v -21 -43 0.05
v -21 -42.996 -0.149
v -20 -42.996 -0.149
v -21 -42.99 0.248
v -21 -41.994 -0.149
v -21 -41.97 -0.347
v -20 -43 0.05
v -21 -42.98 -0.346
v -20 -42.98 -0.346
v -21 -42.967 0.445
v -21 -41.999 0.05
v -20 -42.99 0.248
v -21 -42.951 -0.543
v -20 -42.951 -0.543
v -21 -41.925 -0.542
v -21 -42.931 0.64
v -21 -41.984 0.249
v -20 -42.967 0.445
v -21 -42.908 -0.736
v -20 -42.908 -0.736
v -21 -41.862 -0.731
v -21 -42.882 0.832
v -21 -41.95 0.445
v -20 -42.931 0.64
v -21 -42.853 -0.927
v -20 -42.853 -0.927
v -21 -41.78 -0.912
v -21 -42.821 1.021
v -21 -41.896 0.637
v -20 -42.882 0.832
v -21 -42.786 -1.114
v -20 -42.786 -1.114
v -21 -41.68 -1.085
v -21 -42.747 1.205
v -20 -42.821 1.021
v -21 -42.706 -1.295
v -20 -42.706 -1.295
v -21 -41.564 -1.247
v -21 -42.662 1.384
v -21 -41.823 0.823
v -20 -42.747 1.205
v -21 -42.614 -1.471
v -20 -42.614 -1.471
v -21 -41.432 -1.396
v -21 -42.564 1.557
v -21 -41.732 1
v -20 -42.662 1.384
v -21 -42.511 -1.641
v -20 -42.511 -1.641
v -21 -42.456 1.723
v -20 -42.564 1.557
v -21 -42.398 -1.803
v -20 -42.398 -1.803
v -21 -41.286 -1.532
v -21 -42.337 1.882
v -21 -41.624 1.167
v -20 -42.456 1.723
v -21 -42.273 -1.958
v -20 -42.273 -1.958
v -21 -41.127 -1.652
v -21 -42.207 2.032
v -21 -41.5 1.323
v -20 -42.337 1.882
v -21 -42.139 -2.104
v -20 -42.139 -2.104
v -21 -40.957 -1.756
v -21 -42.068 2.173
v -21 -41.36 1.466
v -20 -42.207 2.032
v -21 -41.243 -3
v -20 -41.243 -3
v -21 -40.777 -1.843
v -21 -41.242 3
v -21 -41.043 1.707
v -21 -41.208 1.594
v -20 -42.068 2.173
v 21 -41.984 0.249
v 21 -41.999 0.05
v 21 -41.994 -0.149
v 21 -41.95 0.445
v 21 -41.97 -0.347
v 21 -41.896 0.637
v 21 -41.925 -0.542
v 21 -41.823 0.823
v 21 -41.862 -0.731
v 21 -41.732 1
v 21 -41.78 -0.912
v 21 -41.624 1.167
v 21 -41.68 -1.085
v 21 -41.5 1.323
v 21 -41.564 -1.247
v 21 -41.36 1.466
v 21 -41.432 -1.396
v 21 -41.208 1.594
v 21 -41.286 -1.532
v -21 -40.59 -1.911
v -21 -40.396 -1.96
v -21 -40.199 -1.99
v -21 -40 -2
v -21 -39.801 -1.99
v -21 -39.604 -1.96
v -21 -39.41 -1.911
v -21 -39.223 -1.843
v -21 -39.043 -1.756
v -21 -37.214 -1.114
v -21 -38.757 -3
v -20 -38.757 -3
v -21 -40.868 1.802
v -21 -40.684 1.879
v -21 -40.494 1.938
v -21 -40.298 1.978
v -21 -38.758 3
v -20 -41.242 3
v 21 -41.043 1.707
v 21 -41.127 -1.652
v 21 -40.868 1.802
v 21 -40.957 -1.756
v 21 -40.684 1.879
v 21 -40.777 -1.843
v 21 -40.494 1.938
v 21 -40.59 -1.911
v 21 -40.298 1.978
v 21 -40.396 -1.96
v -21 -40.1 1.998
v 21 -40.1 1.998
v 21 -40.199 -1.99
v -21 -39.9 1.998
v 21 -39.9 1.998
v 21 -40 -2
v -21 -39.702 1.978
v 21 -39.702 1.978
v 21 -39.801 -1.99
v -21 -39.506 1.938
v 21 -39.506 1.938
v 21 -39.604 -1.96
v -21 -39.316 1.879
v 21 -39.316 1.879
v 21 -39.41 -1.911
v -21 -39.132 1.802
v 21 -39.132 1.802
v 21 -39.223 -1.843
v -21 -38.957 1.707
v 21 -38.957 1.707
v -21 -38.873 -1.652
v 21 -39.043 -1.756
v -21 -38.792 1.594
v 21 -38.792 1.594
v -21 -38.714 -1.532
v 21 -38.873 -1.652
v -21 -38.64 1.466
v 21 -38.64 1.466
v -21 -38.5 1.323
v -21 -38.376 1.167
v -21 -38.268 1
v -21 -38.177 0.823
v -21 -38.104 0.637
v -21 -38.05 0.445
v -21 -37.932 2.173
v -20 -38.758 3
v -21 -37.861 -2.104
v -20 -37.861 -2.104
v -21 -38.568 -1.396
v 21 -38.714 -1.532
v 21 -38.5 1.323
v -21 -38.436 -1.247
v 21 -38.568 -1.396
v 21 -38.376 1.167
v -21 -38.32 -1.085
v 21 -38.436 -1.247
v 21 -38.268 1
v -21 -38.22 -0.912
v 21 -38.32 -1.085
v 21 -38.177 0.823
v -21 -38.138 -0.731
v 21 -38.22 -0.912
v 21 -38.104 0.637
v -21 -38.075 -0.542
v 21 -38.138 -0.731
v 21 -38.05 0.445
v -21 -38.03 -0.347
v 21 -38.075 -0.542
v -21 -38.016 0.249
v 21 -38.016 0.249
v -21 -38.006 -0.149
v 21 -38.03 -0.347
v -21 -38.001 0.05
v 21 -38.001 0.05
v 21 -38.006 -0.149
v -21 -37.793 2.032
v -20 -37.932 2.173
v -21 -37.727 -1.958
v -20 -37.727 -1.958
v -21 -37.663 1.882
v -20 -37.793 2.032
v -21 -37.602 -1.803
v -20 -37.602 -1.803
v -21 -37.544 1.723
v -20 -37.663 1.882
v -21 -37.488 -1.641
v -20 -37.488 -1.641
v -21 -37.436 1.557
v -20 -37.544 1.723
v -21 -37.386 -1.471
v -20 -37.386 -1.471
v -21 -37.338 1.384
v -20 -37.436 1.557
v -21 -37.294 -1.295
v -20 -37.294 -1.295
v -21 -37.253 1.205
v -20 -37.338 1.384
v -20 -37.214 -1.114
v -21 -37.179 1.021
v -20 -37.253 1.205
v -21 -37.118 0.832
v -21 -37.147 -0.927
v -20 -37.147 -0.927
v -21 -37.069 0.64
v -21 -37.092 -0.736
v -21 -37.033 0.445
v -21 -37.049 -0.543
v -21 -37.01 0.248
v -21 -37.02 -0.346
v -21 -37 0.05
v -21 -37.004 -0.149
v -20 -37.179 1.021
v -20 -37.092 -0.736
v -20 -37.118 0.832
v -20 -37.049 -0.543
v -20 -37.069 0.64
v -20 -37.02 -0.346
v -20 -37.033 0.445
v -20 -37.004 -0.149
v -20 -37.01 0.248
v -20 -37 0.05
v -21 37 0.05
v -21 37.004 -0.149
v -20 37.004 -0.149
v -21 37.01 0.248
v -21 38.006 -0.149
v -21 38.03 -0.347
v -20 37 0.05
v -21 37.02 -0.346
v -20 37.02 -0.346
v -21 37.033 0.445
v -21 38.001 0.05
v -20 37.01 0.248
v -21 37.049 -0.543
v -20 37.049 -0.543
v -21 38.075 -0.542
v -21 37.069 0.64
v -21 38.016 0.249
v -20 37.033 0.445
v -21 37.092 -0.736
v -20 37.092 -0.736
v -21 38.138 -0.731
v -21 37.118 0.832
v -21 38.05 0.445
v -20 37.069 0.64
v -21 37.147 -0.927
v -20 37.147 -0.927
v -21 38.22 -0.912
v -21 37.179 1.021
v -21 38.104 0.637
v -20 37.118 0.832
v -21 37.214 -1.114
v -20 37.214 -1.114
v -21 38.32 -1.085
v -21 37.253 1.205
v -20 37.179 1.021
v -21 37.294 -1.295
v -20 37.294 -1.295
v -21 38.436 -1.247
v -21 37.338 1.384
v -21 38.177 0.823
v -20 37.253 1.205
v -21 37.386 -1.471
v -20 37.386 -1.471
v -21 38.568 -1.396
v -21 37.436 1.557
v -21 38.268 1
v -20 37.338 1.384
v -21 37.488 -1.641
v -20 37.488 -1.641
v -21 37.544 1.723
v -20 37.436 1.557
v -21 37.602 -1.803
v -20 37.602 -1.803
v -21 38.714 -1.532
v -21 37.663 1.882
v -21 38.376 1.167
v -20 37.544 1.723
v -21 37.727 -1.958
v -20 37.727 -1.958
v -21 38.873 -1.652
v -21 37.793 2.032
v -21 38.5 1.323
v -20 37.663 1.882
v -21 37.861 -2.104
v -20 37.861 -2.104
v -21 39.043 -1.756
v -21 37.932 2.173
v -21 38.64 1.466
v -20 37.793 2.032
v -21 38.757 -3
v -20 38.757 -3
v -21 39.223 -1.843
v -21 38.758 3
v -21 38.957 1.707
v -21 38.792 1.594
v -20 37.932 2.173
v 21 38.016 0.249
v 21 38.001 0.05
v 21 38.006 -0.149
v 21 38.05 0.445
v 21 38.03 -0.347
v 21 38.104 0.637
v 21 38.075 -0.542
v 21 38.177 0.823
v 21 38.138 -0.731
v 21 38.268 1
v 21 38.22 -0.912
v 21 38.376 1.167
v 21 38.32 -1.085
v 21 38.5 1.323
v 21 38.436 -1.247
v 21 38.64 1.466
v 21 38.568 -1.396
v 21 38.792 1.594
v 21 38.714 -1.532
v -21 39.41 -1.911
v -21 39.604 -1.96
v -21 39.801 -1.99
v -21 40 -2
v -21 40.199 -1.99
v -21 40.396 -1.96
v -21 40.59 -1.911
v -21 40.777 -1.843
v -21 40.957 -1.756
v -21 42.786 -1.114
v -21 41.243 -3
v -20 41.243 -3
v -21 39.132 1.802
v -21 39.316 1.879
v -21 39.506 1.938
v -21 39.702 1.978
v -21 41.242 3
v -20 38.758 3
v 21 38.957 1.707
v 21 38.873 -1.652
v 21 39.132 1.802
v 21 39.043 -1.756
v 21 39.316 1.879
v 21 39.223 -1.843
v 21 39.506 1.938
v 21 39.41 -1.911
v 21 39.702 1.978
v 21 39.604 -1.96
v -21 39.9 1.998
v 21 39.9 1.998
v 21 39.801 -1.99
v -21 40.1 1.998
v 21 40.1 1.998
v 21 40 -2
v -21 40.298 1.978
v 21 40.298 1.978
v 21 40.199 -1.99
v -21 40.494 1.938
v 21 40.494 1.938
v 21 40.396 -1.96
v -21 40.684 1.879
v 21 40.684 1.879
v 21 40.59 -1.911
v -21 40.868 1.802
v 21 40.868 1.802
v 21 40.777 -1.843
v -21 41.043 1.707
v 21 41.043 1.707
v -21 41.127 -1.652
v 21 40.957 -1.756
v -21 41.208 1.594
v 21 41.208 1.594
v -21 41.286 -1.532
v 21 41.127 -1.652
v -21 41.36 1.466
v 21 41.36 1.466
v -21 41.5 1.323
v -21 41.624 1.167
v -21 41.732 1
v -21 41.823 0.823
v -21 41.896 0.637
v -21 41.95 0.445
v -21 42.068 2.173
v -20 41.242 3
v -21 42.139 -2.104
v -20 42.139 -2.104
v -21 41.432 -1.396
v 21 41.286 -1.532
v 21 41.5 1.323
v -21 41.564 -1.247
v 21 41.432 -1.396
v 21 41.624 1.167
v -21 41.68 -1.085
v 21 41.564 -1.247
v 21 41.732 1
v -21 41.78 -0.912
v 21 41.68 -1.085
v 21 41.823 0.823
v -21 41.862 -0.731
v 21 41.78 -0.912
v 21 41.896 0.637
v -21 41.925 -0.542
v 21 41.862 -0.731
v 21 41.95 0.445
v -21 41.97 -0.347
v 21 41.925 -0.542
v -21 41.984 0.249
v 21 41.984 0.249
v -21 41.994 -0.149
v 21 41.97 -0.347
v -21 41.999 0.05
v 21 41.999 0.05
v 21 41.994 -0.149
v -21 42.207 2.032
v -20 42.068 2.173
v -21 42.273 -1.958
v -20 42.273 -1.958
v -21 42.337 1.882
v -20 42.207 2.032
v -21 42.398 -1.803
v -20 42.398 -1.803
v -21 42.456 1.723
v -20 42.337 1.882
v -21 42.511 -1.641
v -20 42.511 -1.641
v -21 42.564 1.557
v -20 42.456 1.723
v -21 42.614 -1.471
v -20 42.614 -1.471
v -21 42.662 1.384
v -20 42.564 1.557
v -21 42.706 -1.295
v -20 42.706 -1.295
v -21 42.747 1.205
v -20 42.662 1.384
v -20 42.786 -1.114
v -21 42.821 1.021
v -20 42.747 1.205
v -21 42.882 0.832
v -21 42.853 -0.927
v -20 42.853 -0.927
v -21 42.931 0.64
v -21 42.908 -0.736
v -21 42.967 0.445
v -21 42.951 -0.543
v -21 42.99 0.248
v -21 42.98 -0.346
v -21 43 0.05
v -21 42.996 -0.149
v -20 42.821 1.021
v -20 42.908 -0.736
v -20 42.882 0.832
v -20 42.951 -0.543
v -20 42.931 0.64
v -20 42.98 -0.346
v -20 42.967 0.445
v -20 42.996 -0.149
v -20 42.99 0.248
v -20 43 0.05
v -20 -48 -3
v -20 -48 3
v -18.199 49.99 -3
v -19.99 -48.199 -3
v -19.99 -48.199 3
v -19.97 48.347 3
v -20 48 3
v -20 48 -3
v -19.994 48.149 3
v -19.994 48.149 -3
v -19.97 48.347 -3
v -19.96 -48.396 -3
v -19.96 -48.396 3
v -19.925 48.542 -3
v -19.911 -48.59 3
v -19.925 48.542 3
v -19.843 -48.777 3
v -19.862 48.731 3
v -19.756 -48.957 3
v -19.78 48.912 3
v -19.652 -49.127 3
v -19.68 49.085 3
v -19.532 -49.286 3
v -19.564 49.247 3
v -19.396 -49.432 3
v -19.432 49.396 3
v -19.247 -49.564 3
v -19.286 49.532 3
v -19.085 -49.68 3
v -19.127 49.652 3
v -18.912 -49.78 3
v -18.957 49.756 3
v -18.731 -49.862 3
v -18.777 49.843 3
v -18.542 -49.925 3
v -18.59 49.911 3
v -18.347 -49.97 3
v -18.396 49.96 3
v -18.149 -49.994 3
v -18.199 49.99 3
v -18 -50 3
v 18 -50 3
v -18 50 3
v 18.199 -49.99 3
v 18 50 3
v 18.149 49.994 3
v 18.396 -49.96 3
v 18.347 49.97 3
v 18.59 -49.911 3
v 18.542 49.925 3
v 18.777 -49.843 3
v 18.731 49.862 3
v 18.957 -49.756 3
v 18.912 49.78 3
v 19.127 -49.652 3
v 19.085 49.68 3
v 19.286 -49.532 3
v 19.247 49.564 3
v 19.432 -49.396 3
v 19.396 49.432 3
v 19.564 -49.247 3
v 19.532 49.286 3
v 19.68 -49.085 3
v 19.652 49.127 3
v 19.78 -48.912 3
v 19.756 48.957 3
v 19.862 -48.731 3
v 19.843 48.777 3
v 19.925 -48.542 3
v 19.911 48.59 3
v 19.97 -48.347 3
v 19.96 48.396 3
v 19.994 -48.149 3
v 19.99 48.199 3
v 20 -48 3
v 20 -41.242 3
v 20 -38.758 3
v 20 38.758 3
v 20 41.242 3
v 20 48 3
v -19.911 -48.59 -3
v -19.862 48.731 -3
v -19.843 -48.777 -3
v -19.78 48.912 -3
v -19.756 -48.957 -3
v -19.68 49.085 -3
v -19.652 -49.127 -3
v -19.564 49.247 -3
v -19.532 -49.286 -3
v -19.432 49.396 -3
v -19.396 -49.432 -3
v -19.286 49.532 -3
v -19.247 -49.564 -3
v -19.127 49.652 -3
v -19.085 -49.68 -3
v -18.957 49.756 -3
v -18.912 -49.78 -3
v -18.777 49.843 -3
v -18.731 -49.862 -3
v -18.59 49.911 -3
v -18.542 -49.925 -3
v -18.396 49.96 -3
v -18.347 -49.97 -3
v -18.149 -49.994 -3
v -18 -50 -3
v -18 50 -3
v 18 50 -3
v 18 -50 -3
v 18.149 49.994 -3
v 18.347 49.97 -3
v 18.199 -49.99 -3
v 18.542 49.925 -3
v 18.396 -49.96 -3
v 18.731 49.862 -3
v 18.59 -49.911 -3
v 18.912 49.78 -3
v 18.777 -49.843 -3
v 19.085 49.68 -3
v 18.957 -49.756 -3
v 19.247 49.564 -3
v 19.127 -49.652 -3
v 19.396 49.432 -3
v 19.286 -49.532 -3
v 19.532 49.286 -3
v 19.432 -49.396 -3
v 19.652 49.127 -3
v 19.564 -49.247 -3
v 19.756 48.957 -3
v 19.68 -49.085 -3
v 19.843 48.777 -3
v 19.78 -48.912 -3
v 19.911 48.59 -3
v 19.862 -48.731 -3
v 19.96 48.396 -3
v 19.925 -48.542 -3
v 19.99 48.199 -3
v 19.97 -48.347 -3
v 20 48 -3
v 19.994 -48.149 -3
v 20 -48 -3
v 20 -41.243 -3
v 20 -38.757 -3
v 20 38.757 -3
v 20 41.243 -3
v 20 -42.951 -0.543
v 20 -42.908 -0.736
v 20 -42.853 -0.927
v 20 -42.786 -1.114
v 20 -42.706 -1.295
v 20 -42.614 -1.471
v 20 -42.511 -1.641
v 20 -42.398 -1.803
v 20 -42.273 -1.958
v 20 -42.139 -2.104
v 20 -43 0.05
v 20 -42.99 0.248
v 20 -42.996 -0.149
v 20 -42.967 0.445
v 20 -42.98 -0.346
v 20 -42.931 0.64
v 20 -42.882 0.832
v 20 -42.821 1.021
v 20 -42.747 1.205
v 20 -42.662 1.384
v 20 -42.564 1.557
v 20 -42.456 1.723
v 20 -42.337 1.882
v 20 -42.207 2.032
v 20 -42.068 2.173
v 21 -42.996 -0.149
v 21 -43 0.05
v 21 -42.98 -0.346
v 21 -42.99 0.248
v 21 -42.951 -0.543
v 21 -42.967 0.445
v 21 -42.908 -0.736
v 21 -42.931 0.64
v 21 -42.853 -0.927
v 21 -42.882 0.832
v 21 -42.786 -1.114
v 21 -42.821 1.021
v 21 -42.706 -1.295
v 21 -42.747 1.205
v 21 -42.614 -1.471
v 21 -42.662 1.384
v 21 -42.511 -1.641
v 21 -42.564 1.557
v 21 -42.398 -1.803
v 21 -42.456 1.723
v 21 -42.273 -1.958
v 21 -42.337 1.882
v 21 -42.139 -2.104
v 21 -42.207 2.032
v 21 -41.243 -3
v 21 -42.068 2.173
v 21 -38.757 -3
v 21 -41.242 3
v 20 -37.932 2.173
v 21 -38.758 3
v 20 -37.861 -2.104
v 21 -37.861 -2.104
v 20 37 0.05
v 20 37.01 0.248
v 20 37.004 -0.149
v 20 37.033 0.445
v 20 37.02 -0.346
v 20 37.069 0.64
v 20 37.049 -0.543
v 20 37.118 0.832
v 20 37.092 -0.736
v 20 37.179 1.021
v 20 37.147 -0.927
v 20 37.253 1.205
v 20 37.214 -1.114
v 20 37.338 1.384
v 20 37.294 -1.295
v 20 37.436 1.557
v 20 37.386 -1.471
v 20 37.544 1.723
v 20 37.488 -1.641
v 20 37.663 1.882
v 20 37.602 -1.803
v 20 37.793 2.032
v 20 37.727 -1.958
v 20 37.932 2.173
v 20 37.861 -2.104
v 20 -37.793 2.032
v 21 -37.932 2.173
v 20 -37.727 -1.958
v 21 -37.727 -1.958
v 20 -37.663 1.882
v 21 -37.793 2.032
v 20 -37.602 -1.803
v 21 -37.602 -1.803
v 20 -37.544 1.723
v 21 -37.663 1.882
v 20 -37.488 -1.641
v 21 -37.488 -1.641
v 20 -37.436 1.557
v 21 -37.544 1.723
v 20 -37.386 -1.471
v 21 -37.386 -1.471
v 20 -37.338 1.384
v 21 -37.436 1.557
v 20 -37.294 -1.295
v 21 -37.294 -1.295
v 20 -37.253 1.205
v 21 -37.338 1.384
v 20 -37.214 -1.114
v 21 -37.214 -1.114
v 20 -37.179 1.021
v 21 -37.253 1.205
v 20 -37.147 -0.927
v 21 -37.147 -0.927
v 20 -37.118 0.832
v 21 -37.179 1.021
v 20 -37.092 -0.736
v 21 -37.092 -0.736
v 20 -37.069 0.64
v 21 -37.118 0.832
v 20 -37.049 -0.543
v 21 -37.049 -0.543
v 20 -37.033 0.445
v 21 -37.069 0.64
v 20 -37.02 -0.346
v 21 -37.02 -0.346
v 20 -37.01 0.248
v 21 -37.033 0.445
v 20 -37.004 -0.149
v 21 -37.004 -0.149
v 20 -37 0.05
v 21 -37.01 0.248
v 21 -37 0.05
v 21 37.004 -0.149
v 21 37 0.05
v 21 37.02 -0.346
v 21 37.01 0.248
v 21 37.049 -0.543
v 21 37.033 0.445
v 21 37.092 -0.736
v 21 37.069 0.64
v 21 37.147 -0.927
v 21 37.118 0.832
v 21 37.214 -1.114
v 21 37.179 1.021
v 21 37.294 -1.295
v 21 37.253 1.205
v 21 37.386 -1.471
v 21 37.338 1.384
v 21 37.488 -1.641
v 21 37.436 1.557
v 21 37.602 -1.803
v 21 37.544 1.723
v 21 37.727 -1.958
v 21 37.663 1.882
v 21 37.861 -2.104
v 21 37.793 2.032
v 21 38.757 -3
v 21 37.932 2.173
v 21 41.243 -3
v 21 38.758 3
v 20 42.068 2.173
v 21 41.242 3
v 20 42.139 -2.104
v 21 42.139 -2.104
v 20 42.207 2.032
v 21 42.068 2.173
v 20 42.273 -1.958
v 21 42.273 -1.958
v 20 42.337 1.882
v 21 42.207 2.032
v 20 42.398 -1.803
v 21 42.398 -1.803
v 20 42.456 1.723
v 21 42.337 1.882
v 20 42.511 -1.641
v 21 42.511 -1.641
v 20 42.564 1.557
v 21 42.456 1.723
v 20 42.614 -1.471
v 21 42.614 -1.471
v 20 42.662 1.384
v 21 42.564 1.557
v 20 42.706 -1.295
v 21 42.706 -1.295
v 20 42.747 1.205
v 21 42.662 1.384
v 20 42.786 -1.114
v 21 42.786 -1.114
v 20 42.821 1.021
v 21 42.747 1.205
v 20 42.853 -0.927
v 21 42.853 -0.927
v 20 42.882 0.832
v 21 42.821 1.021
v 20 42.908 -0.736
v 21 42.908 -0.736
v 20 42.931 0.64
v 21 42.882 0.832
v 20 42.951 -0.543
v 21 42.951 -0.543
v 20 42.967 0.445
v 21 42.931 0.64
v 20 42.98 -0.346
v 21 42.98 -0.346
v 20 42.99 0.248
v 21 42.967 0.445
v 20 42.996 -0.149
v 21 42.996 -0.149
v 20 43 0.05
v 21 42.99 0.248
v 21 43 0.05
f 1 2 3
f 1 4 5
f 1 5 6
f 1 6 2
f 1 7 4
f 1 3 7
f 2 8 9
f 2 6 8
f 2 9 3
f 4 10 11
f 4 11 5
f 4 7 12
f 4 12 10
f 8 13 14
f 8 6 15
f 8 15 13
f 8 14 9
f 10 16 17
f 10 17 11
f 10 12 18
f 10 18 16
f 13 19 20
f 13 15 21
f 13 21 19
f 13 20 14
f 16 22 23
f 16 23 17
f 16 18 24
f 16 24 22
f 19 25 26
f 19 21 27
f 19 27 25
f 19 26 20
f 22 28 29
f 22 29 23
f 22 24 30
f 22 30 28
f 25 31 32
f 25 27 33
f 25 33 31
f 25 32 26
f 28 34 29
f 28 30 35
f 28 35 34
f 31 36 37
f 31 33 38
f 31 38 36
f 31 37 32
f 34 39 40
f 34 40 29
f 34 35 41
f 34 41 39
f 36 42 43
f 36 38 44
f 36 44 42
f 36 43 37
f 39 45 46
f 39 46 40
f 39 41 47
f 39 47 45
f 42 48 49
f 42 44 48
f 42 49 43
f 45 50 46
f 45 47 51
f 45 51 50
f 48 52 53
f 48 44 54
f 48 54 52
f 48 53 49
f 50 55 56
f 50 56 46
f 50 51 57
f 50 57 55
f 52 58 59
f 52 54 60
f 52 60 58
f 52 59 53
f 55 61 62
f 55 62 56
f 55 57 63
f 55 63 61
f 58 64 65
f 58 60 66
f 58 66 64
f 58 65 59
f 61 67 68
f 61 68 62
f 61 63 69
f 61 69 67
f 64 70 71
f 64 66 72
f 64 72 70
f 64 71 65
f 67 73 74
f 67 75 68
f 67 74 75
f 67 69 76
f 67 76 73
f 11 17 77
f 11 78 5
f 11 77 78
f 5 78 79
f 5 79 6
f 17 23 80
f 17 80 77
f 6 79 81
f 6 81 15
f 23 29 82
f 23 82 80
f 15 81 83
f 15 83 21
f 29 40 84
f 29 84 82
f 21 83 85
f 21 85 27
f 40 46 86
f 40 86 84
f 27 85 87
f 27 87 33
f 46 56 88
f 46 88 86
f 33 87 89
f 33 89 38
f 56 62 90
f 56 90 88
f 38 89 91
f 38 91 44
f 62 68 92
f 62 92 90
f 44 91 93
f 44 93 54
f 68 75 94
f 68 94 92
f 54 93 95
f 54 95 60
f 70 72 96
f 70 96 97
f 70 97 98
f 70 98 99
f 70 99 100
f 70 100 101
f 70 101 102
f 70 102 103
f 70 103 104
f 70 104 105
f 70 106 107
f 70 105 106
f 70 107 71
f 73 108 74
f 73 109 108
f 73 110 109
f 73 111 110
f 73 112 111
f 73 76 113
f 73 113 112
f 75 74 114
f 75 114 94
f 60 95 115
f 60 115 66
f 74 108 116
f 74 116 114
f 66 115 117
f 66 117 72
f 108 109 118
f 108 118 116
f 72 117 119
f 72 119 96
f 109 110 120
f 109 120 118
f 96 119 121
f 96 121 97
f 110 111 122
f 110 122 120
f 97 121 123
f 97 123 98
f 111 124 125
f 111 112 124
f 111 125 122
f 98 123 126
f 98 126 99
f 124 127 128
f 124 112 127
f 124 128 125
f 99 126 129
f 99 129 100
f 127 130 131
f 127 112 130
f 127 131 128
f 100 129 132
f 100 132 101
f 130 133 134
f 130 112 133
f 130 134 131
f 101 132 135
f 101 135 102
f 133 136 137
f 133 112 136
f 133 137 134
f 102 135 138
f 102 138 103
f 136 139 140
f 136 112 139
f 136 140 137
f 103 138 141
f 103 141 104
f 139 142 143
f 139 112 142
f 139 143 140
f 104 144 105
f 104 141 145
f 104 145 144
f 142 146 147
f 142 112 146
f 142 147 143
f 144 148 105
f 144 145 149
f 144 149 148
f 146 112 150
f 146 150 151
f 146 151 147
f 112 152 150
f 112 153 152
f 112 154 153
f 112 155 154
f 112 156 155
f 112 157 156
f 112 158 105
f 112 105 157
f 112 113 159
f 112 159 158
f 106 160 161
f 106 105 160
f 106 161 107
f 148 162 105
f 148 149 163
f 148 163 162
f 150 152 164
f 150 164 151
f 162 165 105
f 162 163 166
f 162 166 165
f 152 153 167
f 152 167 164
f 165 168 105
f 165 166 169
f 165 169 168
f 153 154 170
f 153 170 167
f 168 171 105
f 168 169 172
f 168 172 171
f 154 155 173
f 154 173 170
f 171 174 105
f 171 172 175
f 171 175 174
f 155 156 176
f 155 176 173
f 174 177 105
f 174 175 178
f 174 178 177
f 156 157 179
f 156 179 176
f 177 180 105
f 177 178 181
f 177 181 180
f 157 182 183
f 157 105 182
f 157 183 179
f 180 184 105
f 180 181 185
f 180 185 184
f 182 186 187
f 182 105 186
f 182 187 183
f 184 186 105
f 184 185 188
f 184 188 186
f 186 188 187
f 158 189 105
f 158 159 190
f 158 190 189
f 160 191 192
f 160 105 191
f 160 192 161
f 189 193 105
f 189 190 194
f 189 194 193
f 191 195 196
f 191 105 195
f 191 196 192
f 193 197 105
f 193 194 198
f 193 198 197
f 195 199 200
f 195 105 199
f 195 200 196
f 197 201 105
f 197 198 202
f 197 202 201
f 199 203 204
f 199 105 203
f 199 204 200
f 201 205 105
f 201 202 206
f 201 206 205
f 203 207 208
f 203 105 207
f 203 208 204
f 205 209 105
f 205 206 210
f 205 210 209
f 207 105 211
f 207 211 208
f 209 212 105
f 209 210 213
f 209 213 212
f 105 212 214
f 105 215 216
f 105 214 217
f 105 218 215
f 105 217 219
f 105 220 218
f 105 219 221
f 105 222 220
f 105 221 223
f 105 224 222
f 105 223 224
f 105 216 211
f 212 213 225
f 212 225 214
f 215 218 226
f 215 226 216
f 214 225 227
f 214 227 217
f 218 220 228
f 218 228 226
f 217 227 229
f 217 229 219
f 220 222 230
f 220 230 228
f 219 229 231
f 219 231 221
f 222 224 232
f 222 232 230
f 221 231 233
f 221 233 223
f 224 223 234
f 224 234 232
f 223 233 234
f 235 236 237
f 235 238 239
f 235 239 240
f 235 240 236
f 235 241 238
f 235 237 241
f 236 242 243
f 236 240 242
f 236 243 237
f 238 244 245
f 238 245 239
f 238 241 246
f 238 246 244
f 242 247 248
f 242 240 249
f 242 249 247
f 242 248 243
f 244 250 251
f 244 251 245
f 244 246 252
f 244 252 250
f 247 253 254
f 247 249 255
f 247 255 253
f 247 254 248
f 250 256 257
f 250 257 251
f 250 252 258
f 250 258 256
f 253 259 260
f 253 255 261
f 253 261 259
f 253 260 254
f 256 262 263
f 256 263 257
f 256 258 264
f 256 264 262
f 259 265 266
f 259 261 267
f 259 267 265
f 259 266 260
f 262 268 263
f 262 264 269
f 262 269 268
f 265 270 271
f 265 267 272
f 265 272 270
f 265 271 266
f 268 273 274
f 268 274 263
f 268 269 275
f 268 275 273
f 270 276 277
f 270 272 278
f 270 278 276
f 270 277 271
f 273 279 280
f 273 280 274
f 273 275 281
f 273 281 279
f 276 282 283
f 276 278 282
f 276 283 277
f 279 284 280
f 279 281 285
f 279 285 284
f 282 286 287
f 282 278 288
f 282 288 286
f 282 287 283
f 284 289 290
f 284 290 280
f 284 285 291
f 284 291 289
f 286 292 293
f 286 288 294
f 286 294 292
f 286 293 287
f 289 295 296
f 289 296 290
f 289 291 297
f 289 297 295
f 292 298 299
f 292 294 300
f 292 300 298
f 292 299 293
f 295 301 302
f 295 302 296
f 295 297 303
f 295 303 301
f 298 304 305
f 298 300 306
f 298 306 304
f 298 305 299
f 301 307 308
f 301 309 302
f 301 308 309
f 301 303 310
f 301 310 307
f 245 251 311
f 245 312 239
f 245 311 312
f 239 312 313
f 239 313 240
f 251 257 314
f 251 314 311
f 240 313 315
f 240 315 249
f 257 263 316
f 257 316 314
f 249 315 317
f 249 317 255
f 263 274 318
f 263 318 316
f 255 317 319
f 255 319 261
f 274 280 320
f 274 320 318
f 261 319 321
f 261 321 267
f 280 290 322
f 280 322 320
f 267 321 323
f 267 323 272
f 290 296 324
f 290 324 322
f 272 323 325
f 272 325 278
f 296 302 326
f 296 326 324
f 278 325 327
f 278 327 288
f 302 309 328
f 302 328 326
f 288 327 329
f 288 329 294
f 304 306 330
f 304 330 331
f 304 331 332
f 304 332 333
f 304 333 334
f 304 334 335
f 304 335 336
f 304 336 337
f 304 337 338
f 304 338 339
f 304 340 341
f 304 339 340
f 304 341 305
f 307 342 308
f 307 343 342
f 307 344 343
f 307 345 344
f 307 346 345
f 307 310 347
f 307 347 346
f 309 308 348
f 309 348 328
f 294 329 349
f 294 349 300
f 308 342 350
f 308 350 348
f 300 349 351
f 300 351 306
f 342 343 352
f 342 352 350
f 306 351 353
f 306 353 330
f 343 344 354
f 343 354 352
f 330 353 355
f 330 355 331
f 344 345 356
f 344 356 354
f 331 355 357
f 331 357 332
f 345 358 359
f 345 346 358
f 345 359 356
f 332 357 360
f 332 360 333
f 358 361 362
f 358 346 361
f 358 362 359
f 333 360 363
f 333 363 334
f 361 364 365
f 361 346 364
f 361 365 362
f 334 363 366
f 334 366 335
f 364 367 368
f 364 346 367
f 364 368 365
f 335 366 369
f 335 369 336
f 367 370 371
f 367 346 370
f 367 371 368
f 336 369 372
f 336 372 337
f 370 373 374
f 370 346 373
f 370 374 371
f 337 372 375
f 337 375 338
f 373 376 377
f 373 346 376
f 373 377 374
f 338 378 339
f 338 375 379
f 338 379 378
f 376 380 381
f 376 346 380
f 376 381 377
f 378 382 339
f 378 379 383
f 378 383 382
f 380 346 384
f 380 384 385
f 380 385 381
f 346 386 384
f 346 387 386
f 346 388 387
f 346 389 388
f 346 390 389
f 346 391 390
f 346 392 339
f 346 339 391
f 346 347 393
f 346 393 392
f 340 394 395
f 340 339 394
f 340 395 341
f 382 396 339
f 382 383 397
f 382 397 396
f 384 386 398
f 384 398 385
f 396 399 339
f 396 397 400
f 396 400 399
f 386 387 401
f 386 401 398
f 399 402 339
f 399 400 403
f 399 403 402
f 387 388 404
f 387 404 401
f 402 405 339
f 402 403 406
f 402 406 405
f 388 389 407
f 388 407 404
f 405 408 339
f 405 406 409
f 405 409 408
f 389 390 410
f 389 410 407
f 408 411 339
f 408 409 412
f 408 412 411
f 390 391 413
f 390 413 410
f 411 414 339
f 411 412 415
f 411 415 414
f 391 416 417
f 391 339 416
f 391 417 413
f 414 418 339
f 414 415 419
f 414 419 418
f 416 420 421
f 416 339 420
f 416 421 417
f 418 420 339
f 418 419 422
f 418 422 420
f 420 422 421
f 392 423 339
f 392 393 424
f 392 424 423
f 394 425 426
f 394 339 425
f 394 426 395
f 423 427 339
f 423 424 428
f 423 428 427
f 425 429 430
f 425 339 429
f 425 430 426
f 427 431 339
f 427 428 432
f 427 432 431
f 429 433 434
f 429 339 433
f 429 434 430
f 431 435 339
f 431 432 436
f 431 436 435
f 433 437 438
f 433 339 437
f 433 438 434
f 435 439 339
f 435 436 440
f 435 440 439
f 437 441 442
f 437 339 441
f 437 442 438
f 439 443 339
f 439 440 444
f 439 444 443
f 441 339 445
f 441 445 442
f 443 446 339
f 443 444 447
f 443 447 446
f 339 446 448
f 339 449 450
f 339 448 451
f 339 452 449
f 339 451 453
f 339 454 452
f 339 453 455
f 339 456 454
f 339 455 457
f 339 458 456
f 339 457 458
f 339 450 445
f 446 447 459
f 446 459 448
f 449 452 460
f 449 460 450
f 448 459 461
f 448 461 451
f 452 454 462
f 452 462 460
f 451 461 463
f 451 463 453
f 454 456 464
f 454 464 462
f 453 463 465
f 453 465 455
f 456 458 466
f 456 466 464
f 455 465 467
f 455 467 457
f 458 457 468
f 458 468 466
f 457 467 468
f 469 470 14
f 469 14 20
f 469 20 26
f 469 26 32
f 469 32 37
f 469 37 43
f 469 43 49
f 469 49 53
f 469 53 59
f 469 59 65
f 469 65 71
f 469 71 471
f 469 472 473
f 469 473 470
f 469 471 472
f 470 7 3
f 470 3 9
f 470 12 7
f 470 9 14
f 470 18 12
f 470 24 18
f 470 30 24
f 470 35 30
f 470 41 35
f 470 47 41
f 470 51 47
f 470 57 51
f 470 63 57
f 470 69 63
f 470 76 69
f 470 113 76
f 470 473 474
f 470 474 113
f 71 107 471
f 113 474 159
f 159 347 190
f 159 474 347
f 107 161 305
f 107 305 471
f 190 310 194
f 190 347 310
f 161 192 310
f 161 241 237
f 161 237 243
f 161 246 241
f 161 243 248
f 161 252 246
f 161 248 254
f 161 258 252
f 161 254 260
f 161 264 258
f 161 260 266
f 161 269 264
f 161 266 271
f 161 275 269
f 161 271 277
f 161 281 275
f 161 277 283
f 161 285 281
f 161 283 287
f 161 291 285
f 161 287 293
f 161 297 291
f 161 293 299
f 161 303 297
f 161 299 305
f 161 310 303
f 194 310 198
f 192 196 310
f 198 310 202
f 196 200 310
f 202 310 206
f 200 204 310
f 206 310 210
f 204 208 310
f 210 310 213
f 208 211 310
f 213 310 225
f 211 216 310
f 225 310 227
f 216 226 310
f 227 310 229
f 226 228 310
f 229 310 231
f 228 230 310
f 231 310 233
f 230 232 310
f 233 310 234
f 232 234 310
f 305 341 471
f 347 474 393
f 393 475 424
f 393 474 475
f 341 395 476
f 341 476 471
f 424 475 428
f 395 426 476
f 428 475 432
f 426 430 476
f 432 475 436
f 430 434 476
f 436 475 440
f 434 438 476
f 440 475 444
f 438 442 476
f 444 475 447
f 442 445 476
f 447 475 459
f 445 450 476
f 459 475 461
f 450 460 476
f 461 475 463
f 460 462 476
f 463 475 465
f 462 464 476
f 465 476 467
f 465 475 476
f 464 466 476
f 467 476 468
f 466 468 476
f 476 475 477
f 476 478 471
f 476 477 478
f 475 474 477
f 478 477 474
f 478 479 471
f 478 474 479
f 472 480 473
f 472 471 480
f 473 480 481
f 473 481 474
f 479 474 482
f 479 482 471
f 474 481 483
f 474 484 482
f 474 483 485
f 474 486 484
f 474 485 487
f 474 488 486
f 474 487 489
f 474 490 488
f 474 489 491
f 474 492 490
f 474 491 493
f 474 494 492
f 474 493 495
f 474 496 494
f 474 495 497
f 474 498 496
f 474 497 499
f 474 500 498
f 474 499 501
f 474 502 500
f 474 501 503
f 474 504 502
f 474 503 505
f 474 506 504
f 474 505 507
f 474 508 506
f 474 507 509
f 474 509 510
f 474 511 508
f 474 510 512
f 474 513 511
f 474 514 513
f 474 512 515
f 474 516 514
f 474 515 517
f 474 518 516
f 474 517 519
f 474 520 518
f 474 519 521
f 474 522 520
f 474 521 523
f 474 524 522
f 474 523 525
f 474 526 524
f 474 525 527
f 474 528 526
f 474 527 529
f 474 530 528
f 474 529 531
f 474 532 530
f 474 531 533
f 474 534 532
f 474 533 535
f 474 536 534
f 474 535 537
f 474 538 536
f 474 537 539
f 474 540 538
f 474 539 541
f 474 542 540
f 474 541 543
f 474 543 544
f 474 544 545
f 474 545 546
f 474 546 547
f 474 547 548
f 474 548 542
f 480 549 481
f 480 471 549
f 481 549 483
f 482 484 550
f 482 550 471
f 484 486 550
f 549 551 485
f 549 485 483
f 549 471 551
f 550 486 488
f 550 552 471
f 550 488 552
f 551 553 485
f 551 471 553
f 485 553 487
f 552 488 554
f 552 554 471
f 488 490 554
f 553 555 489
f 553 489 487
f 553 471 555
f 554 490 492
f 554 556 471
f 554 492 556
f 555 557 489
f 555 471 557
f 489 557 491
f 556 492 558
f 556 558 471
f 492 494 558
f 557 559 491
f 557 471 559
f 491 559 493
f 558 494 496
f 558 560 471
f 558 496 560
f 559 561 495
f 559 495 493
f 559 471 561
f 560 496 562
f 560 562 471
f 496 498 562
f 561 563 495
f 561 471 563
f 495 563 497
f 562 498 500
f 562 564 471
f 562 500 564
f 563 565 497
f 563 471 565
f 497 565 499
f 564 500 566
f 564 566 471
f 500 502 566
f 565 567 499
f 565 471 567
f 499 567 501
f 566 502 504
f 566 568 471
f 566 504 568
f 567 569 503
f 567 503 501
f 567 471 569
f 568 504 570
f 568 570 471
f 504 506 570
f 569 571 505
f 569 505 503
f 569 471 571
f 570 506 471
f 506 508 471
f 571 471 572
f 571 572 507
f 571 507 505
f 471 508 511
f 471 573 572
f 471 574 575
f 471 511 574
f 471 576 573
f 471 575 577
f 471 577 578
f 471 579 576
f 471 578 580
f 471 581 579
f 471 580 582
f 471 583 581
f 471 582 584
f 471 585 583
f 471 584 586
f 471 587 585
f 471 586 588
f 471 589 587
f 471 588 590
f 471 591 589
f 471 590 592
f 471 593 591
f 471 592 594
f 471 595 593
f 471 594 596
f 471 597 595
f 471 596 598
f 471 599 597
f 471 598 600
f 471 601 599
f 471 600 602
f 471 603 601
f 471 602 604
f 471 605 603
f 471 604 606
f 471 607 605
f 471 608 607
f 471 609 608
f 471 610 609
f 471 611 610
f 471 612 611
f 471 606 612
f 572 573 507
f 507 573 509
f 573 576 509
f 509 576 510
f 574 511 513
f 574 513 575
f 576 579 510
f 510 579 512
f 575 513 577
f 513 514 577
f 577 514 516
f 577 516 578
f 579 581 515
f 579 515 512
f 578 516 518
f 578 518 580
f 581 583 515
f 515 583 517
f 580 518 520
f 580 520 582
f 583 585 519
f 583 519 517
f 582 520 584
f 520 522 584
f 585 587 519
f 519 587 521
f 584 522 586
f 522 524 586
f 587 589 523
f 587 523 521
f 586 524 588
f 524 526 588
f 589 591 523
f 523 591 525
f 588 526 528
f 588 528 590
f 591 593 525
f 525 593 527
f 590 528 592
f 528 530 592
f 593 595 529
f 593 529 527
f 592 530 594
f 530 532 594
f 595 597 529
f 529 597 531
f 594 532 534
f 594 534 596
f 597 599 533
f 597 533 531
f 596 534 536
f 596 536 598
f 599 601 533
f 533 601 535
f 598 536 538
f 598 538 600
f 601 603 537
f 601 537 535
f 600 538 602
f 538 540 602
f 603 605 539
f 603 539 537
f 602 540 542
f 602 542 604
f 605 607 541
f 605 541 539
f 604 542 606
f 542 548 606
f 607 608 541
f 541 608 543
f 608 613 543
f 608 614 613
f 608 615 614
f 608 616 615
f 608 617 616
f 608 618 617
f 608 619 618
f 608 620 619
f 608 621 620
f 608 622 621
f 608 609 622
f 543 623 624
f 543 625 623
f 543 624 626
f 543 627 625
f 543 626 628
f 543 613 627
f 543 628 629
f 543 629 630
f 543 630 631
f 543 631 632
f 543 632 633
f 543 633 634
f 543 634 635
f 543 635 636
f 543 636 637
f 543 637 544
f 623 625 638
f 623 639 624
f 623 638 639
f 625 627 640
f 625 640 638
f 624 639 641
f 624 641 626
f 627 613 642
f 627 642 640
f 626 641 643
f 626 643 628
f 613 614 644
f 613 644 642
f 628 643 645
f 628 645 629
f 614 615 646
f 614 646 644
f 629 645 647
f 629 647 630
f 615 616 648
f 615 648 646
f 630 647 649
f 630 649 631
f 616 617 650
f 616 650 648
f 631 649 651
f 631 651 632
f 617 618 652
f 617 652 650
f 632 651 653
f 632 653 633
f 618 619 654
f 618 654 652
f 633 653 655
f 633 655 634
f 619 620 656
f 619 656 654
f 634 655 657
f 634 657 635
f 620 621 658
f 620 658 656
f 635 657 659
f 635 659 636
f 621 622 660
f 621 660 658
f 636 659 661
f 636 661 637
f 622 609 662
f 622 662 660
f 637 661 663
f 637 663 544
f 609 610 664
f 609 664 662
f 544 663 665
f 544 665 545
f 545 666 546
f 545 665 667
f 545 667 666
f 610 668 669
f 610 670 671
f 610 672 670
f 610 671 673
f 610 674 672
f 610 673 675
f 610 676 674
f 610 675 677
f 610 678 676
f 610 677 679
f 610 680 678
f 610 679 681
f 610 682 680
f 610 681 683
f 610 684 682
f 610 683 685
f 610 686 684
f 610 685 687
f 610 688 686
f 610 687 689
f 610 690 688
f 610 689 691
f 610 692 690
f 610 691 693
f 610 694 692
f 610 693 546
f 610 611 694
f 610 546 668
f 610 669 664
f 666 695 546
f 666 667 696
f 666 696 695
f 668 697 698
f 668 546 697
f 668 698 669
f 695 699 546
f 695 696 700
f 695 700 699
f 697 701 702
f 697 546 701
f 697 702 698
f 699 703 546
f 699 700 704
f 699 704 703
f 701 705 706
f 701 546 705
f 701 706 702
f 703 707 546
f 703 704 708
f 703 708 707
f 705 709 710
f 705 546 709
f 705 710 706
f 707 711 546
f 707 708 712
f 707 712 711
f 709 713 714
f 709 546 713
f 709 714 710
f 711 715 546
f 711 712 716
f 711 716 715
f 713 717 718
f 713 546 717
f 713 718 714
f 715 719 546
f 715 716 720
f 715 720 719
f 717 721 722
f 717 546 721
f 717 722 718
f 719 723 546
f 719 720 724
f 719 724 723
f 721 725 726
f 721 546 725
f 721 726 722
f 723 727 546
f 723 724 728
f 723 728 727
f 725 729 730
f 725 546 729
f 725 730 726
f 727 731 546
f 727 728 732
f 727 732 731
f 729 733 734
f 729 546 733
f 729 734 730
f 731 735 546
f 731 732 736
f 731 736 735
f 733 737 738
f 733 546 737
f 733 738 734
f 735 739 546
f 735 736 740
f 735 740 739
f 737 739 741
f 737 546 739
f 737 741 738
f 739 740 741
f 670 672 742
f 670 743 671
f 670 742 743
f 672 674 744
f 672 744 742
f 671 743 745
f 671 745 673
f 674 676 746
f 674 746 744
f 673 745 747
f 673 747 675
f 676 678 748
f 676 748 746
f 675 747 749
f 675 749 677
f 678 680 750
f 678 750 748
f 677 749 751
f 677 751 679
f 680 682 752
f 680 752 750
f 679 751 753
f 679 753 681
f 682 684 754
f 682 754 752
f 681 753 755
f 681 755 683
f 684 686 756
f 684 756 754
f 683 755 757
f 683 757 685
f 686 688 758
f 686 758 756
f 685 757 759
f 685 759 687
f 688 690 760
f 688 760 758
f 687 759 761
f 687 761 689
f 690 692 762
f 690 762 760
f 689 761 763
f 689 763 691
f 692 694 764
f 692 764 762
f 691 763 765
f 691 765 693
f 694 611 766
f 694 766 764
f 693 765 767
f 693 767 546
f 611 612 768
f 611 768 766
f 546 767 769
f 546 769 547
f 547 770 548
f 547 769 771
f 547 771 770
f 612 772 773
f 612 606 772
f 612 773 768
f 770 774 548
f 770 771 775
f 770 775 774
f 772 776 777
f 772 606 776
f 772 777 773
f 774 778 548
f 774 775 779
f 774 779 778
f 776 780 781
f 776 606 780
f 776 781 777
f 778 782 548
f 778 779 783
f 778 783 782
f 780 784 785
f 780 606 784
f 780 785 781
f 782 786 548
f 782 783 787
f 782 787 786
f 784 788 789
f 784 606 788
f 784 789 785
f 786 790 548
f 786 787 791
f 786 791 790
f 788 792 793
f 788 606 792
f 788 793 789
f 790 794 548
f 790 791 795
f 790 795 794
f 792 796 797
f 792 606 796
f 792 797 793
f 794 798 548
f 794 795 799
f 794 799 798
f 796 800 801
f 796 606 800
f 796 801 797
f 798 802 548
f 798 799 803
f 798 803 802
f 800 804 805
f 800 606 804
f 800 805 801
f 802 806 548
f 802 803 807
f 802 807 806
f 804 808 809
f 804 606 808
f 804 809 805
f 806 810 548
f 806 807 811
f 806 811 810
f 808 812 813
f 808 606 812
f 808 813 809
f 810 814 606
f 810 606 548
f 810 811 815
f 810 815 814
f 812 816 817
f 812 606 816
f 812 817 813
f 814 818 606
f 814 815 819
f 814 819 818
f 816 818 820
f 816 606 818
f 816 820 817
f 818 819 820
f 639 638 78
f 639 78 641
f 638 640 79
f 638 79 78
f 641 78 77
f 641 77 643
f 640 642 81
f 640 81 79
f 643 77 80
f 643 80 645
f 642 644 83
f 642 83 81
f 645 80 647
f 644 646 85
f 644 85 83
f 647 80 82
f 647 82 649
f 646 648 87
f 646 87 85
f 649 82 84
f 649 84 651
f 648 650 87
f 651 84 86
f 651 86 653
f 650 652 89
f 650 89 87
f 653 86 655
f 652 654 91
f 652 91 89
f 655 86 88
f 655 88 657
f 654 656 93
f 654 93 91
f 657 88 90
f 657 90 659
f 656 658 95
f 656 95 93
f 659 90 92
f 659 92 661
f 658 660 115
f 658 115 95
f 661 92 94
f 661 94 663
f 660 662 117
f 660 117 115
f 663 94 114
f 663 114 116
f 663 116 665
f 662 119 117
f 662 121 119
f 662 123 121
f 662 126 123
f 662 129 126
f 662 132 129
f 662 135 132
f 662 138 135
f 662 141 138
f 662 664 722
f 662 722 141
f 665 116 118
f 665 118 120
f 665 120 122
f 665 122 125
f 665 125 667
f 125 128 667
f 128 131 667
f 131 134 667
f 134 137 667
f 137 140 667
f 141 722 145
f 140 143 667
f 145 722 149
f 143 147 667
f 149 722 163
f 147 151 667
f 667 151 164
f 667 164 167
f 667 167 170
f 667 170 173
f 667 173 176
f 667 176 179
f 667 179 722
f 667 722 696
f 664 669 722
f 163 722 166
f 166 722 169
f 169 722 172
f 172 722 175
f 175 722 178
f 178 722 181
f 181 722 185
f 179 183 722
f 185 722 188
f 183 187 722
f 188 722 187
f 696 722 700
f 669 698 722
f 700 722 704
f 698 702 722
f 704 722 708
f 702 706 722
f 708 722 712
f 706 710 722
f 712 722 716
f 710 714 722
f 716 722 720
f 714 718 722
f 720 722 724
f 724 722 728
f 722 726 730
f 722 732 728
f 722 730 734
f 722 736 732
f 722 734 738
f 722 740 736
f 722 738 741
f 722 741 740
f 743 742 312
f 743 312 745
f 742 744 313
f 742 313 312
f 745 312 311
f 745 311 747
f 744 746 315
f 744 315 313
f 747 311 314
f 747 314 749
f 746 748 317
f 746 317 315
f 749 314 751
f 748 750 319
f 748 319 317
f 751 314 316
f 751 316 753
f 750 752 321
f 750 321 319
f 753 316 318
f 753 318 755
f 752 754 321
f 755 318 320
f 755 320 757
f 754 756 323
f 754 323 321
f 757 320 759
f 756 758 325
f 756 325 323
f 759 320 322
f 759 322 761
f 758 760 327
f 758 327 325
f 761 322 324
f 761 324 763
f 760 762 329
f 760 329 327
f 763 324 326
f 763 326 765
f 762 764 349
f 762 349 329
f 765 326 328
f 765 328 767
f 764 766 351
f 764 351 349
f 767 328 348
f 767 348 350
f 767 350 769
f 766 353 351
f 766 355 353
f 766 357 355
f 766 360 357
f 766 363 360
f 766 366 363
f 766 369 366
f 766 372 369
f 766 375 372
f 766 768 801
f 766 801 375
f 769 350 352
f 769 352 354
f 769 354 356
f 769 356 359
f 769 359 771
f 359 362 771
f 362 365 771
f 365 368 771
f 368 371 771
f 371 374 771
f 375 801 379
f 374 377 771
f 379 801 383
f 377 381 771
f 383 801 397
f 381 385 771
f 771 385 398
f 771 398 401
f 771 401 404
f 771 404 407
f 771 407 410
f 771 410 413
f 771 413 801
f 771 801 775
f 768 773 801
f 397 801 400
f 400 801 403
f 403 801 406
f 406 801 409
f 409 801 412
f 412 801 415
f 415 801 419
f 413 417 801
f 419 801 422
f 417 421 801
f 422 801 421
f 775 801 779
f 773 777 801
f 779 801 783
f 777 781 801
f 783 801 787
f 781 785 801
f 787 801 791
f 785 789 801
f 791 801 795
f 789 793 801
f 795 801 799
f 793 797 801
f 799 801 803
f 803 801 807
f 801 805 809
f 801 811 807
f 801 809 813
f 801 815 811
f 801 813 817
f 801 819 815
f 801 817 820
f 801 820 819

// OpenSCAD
//OpenSCAD model of a printable chassis for skewerWheels.scad
//File chassis.scad
//(c) 2024 Rich Cameron
//for the book 3D Printed Science projects, Volume 1
//Licensed under a Creative Commons, Attribution,
//CC-BY 4.0 international license, per
//https://creativecommons.org/licenses/by/4.0/
//Attribute to Rich Cameron, at
//repository github.com/whosawhatsis/3DP-Science-Projects

size = [40, 100];
wheelbase = 80;
hole = 4;

$fs = .2;
$fa = 2;

difference() {
  union() {
    linear_extrude(hole + 2, center = true)
      offset(2) offset(-2) square(size, center = true);
    for(i = [-1, 1]) translate(i * [0, wheelbase / 2, 0])
      rotate([0, 90, 0])
        linear_extrude(size[0] + 2, center = true)
          intersection() {
            hull() {
              circle(hole / 2 + 1);
              scale([sqrt(2), .5])
                circle(hole / 2 + 1, $fn = 4);
            }
            square(hole + 2, center = true);
          }
  }
  for(i = [-1, 1]) translate(i * [0, wheelbase / 2, 0])
    rotate([0, 90, 0])
      linear_extrude(size[0] + 3, center = true)
        circle(hole / 2);
}
